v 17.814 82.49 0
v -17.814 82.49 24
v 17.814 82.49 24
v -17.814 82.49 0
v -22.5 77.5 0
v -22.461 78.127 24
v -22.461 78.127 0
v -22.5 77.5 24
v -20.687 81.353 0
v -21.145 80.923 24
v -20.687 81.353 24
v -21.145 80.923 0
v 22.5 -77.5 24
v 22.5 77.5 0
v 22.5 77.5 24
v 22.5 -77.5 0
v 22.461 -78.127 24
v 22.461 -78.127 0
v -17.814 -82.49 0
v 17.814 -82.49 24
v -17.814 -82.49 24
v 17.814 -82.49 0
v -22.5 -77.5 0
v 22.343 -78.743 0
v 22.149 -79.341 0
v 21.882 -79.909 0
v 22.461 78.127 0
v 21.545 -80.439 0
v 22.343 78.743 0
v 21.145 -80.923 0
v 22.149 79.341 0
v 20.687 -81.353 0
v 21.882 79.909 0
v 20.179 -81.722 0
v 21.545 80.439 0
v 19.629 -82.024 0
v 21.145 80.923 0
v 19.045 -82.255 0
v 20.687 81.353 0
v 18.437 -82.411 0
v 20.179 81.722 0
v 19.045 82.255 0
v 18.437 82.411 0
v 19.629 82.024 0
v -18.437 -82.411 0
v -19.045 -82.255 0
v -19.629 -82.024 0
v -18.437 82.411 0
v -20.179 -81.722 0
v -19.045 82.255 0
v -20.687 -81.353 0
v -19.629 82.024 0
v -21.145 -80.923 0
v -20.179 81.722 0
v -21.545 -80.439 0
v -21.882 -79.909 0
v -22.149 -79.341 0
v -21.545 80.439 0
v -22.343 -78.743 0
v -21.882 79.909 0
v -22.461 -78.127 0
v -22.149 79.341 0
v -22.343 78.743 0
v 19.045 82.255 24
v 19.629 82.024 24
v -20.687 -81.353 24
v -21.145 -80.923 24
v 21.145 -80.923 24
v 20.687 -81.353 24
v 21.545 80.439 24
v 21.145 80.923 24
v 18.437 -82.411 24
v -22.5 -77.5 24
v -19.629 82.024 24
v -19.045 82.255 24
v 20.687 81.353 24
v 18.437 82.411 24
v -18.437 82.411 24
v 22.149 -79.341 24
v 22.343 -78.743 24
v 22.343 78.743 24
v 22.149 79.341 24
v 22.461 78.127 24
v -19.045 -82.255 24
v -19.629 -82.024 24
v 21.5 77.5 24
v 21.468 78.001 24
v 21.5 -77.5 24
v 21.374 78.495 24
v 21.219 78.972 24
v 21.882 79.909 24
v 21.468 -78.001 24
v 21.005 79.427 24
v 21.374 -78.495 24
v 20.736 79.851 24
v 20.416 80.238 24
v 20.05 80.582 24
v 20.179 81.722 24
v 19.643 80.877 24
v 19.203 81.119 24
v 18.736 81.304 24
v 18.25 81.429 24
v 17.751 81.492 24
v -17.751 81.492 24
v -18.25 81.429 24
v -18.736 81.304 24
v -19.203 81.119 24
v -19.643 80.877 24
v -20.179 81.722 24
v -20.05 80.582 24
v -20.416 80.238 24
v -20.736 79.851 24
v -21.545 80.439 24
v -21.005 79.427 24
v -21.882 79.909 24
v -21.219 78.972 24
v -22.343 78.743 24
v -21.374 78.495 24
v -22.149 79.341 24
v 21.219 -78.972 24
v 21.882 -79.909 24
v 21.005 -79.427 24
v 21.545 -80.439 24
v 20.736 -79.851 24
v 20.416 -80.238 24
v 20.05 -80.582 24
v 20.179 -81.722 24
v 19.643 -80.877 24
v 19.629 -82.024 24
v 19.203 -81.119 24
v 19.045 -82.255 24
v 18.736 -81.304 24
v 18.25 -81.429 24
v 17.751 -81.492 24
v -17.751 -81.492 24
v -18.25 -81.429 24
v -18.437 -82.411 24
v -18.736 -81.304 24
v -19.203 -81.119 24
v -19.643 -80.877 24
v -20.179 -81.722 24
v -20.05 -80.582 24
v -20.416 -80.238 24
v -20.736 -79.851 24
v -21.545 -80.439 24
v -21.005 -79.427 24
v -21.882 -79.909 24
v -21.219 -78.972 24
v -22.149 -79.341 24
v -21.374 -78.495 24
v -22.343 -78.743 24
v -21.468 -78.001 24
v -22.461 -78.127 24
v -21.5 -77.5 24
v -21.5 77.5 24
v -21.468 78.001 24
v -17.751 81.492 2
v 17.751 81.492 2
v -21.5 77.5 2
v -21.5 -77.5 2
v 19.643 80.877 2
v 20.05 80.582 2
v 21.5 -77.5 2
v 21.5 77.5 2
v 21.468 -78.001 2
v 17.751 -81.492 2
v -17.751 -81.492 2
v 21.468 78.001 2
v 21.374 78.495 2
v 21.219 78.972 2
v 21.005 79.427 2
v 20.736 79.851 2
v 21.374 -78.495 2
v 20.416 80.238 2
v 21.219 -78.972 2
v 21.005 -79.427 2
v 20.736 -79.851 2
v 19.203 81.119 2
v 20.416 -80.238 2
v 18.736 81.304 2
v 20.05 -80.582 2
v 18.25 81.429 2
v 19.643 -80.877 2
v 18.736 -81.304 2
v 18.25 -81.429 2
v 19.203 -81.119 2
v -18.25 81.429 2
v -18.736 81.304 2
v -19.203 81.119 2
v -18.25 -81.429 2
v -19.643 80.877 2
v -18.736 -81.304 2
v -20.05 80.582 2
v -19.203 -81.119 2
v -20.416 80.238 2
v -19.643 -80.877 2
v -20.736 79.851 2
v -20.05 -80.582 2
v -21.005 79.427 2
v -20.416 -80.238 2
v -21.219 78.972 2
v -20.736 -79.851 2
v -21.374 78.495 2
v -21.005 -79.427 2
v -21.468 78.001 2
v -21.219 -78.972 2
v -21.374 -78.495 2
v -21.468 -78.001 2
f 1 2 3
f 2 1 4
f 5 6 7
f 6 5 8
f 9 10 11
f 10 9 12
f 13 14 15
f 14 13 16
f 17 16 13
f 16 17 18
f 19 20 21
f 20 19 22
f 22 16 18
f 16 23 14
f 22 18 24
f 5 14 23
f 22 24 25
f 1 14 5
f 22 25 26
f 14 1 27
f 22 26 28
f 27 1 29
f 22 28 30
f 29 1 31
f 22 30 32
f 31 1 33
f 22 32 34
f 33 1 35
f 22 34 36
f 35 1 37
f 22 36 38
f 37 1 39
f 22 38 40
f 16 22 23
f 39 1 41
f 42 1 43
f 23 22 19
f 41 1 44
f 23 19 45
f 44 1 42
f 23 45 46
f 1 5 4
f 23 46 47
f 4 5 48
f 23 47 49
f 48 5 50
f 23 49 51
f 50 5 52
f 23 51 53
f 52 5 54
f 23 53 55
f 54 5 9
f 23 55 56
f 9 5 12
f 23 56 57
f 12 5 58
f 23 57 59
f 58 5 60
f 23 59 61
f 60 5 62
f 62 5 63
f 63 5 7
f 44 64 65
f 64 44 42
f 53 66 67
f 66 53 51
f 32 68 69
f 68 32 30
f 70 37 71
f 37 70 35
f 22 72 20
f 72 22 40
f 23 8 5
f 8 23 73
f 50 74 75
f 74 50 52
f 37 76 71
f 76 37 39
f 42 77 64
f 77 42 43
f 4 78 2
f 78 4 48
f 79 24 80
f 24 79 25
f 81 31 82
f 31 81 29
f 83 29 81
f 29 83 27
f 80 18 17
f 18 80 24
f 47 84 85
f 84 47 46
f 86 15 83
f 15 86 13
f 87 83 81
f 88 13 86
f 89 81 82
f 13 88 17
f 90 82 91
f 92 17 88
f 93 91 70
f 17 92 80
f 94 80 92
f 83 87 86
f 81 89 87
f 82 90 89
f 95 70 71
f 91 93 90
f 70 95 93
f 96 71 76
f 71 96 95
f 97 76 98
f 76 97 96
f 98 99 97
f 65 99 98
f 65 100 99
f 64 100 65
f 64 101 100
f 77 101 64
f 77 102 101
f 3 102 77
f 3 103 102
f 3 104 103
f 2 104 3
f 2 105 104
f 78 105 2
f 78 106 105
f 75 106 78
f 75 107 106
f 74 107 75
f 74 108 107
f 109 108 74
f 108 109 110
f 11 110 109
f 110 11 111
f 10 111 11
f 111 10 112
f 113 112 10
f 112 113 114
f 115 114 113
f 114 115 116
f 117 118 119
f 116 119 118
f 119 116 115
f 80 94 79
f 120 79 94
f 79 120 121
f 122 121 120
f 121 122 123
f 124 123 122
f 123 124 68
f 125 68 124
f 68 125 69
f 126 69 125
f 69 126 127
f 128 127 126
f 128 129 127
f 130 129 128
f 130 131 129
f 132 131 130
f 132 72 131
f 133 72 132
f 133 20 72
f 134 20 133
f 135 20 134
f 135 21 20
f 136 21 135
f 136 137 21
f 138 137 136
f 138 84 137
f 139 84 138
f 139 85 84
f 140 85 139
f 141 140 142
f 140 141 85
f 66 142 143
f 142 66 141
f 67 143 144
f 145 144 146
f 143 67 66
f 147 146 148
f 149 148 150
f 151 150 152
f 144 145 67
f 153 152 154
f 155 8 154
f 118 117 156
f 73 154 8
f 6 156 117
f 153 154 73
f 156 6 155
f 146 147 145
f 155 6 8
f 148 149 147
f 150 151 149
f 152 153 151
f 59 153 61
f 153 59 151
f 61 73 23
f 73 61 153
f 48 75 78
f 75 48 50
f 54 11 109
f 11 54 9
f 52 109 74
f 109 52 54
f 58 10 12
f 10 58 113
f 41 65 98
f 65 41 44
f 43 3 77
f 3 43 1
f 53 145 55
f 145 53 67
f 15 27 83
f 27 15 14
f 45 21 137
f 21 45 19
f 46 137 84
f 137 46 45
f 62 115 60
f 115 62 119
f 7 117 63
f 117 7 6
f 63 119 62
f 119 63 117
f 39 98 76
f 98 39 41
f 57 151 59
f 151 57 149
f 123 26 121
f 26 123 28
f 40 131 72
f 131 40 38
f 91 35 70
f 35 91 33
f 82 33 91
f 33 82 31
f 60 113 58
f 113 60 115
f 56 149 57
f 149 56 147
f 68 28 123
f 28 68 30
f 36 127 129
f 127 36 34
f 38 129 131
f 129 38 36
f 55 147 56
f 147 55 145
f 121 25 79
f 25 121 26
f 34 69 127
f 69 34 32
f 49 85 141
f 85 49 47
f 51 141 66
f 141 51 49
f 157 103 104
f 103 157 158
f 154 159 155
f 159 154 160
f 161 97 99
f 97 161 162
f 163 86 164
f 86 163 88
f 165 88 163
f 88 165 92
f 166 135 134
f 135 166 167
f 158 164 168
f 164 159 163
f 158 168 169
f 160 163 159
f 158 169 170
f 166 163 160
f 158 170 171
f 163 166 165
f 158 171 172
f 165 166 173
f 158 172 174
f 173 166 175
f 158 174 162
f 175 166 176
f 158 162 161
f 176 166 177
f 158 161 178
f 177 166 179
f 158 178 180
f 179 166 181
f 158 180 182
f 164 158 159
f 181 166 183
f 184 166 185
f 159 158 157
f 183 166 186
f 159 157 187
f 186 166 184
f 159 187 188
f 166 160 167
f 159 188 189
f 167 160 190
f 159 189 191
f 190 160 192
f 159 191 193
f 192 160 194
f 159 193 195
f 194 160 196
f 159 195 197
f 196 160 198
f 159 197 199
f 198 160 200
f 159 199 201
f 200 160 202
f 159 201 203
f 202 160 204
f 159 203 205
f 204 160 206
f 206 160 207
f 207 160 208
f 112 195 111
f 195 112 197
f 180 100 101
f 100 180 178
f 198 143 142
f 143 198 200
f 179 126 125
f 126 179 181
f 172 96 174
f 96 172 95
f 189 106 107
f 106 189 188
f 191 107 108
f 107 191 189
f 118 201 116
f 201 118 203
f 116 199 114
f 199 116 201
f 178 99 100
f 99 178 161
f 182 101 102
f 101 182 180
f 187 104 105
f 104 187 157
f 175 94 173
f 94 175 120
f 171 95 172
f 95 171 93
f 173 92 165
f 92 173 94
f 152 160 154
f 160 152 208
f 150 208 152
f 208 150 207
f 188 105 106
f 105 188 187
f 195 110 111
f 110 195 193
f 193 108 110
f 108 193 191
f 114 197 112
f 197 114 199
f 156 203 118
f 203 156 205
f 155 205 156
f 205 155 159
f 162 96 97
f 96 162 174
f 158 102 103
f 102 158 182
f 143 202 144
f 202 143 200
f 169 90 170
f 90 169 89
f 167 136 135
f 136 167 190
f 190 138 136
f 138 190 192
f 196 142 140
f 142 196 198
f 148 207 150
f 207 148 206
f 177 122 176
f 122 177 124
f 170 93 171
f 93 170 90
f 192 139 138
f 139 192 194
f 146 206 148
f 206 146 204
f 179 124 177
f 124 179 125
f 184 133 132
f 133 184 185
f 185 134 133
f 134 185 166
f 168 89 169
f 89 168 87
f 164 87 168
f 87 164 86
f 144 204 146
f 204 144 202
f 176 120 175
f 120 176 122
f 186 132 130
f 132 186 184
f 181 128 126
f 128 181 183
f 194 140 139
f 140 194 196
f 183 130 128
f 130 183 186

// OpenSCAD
$fn = 50;


difference() {
	union() {
		hull() {
			translate(v = [-17.5000000000, 77.5000000000, 0]) {
				cylinder(h = 24, r = 5);
			}
			translate(v = [17.5000000000, 77.5000000000, 0]) {
				cylinder(h = 24, r = 5);
			}
			translate(v = [-17.5000000000, -77.5000000000, 0]) {
				cylinder(h = 24, r = 5);
			}
			translate(v = [17.5000000000, -77.5000000000, 0]) {
				cylinder(h = 24, r = 5);
			}
		}
	}
	union() {
		translate(v = [0, 0, 2]) {
			hull() {
				translate(v = [-17.5000000000, 77.5000000000, 0]) {
					cylinder(h = 22, r = 4);
				}
				translate(v = [17.5000000000, 77.5000000000, 0]) {
					cylinder(h = 22, r = 4);
				}
				translate(v = [-17.5000000000, -77.5000000000, 0]) {
					cylinder(h = 22, r = 4);
				}
				translate(v = [17.5000000000, -77.5000000000, 0]) {
					cylinder(h = 22, r = 4);
				}
			}
		}
	}
}
